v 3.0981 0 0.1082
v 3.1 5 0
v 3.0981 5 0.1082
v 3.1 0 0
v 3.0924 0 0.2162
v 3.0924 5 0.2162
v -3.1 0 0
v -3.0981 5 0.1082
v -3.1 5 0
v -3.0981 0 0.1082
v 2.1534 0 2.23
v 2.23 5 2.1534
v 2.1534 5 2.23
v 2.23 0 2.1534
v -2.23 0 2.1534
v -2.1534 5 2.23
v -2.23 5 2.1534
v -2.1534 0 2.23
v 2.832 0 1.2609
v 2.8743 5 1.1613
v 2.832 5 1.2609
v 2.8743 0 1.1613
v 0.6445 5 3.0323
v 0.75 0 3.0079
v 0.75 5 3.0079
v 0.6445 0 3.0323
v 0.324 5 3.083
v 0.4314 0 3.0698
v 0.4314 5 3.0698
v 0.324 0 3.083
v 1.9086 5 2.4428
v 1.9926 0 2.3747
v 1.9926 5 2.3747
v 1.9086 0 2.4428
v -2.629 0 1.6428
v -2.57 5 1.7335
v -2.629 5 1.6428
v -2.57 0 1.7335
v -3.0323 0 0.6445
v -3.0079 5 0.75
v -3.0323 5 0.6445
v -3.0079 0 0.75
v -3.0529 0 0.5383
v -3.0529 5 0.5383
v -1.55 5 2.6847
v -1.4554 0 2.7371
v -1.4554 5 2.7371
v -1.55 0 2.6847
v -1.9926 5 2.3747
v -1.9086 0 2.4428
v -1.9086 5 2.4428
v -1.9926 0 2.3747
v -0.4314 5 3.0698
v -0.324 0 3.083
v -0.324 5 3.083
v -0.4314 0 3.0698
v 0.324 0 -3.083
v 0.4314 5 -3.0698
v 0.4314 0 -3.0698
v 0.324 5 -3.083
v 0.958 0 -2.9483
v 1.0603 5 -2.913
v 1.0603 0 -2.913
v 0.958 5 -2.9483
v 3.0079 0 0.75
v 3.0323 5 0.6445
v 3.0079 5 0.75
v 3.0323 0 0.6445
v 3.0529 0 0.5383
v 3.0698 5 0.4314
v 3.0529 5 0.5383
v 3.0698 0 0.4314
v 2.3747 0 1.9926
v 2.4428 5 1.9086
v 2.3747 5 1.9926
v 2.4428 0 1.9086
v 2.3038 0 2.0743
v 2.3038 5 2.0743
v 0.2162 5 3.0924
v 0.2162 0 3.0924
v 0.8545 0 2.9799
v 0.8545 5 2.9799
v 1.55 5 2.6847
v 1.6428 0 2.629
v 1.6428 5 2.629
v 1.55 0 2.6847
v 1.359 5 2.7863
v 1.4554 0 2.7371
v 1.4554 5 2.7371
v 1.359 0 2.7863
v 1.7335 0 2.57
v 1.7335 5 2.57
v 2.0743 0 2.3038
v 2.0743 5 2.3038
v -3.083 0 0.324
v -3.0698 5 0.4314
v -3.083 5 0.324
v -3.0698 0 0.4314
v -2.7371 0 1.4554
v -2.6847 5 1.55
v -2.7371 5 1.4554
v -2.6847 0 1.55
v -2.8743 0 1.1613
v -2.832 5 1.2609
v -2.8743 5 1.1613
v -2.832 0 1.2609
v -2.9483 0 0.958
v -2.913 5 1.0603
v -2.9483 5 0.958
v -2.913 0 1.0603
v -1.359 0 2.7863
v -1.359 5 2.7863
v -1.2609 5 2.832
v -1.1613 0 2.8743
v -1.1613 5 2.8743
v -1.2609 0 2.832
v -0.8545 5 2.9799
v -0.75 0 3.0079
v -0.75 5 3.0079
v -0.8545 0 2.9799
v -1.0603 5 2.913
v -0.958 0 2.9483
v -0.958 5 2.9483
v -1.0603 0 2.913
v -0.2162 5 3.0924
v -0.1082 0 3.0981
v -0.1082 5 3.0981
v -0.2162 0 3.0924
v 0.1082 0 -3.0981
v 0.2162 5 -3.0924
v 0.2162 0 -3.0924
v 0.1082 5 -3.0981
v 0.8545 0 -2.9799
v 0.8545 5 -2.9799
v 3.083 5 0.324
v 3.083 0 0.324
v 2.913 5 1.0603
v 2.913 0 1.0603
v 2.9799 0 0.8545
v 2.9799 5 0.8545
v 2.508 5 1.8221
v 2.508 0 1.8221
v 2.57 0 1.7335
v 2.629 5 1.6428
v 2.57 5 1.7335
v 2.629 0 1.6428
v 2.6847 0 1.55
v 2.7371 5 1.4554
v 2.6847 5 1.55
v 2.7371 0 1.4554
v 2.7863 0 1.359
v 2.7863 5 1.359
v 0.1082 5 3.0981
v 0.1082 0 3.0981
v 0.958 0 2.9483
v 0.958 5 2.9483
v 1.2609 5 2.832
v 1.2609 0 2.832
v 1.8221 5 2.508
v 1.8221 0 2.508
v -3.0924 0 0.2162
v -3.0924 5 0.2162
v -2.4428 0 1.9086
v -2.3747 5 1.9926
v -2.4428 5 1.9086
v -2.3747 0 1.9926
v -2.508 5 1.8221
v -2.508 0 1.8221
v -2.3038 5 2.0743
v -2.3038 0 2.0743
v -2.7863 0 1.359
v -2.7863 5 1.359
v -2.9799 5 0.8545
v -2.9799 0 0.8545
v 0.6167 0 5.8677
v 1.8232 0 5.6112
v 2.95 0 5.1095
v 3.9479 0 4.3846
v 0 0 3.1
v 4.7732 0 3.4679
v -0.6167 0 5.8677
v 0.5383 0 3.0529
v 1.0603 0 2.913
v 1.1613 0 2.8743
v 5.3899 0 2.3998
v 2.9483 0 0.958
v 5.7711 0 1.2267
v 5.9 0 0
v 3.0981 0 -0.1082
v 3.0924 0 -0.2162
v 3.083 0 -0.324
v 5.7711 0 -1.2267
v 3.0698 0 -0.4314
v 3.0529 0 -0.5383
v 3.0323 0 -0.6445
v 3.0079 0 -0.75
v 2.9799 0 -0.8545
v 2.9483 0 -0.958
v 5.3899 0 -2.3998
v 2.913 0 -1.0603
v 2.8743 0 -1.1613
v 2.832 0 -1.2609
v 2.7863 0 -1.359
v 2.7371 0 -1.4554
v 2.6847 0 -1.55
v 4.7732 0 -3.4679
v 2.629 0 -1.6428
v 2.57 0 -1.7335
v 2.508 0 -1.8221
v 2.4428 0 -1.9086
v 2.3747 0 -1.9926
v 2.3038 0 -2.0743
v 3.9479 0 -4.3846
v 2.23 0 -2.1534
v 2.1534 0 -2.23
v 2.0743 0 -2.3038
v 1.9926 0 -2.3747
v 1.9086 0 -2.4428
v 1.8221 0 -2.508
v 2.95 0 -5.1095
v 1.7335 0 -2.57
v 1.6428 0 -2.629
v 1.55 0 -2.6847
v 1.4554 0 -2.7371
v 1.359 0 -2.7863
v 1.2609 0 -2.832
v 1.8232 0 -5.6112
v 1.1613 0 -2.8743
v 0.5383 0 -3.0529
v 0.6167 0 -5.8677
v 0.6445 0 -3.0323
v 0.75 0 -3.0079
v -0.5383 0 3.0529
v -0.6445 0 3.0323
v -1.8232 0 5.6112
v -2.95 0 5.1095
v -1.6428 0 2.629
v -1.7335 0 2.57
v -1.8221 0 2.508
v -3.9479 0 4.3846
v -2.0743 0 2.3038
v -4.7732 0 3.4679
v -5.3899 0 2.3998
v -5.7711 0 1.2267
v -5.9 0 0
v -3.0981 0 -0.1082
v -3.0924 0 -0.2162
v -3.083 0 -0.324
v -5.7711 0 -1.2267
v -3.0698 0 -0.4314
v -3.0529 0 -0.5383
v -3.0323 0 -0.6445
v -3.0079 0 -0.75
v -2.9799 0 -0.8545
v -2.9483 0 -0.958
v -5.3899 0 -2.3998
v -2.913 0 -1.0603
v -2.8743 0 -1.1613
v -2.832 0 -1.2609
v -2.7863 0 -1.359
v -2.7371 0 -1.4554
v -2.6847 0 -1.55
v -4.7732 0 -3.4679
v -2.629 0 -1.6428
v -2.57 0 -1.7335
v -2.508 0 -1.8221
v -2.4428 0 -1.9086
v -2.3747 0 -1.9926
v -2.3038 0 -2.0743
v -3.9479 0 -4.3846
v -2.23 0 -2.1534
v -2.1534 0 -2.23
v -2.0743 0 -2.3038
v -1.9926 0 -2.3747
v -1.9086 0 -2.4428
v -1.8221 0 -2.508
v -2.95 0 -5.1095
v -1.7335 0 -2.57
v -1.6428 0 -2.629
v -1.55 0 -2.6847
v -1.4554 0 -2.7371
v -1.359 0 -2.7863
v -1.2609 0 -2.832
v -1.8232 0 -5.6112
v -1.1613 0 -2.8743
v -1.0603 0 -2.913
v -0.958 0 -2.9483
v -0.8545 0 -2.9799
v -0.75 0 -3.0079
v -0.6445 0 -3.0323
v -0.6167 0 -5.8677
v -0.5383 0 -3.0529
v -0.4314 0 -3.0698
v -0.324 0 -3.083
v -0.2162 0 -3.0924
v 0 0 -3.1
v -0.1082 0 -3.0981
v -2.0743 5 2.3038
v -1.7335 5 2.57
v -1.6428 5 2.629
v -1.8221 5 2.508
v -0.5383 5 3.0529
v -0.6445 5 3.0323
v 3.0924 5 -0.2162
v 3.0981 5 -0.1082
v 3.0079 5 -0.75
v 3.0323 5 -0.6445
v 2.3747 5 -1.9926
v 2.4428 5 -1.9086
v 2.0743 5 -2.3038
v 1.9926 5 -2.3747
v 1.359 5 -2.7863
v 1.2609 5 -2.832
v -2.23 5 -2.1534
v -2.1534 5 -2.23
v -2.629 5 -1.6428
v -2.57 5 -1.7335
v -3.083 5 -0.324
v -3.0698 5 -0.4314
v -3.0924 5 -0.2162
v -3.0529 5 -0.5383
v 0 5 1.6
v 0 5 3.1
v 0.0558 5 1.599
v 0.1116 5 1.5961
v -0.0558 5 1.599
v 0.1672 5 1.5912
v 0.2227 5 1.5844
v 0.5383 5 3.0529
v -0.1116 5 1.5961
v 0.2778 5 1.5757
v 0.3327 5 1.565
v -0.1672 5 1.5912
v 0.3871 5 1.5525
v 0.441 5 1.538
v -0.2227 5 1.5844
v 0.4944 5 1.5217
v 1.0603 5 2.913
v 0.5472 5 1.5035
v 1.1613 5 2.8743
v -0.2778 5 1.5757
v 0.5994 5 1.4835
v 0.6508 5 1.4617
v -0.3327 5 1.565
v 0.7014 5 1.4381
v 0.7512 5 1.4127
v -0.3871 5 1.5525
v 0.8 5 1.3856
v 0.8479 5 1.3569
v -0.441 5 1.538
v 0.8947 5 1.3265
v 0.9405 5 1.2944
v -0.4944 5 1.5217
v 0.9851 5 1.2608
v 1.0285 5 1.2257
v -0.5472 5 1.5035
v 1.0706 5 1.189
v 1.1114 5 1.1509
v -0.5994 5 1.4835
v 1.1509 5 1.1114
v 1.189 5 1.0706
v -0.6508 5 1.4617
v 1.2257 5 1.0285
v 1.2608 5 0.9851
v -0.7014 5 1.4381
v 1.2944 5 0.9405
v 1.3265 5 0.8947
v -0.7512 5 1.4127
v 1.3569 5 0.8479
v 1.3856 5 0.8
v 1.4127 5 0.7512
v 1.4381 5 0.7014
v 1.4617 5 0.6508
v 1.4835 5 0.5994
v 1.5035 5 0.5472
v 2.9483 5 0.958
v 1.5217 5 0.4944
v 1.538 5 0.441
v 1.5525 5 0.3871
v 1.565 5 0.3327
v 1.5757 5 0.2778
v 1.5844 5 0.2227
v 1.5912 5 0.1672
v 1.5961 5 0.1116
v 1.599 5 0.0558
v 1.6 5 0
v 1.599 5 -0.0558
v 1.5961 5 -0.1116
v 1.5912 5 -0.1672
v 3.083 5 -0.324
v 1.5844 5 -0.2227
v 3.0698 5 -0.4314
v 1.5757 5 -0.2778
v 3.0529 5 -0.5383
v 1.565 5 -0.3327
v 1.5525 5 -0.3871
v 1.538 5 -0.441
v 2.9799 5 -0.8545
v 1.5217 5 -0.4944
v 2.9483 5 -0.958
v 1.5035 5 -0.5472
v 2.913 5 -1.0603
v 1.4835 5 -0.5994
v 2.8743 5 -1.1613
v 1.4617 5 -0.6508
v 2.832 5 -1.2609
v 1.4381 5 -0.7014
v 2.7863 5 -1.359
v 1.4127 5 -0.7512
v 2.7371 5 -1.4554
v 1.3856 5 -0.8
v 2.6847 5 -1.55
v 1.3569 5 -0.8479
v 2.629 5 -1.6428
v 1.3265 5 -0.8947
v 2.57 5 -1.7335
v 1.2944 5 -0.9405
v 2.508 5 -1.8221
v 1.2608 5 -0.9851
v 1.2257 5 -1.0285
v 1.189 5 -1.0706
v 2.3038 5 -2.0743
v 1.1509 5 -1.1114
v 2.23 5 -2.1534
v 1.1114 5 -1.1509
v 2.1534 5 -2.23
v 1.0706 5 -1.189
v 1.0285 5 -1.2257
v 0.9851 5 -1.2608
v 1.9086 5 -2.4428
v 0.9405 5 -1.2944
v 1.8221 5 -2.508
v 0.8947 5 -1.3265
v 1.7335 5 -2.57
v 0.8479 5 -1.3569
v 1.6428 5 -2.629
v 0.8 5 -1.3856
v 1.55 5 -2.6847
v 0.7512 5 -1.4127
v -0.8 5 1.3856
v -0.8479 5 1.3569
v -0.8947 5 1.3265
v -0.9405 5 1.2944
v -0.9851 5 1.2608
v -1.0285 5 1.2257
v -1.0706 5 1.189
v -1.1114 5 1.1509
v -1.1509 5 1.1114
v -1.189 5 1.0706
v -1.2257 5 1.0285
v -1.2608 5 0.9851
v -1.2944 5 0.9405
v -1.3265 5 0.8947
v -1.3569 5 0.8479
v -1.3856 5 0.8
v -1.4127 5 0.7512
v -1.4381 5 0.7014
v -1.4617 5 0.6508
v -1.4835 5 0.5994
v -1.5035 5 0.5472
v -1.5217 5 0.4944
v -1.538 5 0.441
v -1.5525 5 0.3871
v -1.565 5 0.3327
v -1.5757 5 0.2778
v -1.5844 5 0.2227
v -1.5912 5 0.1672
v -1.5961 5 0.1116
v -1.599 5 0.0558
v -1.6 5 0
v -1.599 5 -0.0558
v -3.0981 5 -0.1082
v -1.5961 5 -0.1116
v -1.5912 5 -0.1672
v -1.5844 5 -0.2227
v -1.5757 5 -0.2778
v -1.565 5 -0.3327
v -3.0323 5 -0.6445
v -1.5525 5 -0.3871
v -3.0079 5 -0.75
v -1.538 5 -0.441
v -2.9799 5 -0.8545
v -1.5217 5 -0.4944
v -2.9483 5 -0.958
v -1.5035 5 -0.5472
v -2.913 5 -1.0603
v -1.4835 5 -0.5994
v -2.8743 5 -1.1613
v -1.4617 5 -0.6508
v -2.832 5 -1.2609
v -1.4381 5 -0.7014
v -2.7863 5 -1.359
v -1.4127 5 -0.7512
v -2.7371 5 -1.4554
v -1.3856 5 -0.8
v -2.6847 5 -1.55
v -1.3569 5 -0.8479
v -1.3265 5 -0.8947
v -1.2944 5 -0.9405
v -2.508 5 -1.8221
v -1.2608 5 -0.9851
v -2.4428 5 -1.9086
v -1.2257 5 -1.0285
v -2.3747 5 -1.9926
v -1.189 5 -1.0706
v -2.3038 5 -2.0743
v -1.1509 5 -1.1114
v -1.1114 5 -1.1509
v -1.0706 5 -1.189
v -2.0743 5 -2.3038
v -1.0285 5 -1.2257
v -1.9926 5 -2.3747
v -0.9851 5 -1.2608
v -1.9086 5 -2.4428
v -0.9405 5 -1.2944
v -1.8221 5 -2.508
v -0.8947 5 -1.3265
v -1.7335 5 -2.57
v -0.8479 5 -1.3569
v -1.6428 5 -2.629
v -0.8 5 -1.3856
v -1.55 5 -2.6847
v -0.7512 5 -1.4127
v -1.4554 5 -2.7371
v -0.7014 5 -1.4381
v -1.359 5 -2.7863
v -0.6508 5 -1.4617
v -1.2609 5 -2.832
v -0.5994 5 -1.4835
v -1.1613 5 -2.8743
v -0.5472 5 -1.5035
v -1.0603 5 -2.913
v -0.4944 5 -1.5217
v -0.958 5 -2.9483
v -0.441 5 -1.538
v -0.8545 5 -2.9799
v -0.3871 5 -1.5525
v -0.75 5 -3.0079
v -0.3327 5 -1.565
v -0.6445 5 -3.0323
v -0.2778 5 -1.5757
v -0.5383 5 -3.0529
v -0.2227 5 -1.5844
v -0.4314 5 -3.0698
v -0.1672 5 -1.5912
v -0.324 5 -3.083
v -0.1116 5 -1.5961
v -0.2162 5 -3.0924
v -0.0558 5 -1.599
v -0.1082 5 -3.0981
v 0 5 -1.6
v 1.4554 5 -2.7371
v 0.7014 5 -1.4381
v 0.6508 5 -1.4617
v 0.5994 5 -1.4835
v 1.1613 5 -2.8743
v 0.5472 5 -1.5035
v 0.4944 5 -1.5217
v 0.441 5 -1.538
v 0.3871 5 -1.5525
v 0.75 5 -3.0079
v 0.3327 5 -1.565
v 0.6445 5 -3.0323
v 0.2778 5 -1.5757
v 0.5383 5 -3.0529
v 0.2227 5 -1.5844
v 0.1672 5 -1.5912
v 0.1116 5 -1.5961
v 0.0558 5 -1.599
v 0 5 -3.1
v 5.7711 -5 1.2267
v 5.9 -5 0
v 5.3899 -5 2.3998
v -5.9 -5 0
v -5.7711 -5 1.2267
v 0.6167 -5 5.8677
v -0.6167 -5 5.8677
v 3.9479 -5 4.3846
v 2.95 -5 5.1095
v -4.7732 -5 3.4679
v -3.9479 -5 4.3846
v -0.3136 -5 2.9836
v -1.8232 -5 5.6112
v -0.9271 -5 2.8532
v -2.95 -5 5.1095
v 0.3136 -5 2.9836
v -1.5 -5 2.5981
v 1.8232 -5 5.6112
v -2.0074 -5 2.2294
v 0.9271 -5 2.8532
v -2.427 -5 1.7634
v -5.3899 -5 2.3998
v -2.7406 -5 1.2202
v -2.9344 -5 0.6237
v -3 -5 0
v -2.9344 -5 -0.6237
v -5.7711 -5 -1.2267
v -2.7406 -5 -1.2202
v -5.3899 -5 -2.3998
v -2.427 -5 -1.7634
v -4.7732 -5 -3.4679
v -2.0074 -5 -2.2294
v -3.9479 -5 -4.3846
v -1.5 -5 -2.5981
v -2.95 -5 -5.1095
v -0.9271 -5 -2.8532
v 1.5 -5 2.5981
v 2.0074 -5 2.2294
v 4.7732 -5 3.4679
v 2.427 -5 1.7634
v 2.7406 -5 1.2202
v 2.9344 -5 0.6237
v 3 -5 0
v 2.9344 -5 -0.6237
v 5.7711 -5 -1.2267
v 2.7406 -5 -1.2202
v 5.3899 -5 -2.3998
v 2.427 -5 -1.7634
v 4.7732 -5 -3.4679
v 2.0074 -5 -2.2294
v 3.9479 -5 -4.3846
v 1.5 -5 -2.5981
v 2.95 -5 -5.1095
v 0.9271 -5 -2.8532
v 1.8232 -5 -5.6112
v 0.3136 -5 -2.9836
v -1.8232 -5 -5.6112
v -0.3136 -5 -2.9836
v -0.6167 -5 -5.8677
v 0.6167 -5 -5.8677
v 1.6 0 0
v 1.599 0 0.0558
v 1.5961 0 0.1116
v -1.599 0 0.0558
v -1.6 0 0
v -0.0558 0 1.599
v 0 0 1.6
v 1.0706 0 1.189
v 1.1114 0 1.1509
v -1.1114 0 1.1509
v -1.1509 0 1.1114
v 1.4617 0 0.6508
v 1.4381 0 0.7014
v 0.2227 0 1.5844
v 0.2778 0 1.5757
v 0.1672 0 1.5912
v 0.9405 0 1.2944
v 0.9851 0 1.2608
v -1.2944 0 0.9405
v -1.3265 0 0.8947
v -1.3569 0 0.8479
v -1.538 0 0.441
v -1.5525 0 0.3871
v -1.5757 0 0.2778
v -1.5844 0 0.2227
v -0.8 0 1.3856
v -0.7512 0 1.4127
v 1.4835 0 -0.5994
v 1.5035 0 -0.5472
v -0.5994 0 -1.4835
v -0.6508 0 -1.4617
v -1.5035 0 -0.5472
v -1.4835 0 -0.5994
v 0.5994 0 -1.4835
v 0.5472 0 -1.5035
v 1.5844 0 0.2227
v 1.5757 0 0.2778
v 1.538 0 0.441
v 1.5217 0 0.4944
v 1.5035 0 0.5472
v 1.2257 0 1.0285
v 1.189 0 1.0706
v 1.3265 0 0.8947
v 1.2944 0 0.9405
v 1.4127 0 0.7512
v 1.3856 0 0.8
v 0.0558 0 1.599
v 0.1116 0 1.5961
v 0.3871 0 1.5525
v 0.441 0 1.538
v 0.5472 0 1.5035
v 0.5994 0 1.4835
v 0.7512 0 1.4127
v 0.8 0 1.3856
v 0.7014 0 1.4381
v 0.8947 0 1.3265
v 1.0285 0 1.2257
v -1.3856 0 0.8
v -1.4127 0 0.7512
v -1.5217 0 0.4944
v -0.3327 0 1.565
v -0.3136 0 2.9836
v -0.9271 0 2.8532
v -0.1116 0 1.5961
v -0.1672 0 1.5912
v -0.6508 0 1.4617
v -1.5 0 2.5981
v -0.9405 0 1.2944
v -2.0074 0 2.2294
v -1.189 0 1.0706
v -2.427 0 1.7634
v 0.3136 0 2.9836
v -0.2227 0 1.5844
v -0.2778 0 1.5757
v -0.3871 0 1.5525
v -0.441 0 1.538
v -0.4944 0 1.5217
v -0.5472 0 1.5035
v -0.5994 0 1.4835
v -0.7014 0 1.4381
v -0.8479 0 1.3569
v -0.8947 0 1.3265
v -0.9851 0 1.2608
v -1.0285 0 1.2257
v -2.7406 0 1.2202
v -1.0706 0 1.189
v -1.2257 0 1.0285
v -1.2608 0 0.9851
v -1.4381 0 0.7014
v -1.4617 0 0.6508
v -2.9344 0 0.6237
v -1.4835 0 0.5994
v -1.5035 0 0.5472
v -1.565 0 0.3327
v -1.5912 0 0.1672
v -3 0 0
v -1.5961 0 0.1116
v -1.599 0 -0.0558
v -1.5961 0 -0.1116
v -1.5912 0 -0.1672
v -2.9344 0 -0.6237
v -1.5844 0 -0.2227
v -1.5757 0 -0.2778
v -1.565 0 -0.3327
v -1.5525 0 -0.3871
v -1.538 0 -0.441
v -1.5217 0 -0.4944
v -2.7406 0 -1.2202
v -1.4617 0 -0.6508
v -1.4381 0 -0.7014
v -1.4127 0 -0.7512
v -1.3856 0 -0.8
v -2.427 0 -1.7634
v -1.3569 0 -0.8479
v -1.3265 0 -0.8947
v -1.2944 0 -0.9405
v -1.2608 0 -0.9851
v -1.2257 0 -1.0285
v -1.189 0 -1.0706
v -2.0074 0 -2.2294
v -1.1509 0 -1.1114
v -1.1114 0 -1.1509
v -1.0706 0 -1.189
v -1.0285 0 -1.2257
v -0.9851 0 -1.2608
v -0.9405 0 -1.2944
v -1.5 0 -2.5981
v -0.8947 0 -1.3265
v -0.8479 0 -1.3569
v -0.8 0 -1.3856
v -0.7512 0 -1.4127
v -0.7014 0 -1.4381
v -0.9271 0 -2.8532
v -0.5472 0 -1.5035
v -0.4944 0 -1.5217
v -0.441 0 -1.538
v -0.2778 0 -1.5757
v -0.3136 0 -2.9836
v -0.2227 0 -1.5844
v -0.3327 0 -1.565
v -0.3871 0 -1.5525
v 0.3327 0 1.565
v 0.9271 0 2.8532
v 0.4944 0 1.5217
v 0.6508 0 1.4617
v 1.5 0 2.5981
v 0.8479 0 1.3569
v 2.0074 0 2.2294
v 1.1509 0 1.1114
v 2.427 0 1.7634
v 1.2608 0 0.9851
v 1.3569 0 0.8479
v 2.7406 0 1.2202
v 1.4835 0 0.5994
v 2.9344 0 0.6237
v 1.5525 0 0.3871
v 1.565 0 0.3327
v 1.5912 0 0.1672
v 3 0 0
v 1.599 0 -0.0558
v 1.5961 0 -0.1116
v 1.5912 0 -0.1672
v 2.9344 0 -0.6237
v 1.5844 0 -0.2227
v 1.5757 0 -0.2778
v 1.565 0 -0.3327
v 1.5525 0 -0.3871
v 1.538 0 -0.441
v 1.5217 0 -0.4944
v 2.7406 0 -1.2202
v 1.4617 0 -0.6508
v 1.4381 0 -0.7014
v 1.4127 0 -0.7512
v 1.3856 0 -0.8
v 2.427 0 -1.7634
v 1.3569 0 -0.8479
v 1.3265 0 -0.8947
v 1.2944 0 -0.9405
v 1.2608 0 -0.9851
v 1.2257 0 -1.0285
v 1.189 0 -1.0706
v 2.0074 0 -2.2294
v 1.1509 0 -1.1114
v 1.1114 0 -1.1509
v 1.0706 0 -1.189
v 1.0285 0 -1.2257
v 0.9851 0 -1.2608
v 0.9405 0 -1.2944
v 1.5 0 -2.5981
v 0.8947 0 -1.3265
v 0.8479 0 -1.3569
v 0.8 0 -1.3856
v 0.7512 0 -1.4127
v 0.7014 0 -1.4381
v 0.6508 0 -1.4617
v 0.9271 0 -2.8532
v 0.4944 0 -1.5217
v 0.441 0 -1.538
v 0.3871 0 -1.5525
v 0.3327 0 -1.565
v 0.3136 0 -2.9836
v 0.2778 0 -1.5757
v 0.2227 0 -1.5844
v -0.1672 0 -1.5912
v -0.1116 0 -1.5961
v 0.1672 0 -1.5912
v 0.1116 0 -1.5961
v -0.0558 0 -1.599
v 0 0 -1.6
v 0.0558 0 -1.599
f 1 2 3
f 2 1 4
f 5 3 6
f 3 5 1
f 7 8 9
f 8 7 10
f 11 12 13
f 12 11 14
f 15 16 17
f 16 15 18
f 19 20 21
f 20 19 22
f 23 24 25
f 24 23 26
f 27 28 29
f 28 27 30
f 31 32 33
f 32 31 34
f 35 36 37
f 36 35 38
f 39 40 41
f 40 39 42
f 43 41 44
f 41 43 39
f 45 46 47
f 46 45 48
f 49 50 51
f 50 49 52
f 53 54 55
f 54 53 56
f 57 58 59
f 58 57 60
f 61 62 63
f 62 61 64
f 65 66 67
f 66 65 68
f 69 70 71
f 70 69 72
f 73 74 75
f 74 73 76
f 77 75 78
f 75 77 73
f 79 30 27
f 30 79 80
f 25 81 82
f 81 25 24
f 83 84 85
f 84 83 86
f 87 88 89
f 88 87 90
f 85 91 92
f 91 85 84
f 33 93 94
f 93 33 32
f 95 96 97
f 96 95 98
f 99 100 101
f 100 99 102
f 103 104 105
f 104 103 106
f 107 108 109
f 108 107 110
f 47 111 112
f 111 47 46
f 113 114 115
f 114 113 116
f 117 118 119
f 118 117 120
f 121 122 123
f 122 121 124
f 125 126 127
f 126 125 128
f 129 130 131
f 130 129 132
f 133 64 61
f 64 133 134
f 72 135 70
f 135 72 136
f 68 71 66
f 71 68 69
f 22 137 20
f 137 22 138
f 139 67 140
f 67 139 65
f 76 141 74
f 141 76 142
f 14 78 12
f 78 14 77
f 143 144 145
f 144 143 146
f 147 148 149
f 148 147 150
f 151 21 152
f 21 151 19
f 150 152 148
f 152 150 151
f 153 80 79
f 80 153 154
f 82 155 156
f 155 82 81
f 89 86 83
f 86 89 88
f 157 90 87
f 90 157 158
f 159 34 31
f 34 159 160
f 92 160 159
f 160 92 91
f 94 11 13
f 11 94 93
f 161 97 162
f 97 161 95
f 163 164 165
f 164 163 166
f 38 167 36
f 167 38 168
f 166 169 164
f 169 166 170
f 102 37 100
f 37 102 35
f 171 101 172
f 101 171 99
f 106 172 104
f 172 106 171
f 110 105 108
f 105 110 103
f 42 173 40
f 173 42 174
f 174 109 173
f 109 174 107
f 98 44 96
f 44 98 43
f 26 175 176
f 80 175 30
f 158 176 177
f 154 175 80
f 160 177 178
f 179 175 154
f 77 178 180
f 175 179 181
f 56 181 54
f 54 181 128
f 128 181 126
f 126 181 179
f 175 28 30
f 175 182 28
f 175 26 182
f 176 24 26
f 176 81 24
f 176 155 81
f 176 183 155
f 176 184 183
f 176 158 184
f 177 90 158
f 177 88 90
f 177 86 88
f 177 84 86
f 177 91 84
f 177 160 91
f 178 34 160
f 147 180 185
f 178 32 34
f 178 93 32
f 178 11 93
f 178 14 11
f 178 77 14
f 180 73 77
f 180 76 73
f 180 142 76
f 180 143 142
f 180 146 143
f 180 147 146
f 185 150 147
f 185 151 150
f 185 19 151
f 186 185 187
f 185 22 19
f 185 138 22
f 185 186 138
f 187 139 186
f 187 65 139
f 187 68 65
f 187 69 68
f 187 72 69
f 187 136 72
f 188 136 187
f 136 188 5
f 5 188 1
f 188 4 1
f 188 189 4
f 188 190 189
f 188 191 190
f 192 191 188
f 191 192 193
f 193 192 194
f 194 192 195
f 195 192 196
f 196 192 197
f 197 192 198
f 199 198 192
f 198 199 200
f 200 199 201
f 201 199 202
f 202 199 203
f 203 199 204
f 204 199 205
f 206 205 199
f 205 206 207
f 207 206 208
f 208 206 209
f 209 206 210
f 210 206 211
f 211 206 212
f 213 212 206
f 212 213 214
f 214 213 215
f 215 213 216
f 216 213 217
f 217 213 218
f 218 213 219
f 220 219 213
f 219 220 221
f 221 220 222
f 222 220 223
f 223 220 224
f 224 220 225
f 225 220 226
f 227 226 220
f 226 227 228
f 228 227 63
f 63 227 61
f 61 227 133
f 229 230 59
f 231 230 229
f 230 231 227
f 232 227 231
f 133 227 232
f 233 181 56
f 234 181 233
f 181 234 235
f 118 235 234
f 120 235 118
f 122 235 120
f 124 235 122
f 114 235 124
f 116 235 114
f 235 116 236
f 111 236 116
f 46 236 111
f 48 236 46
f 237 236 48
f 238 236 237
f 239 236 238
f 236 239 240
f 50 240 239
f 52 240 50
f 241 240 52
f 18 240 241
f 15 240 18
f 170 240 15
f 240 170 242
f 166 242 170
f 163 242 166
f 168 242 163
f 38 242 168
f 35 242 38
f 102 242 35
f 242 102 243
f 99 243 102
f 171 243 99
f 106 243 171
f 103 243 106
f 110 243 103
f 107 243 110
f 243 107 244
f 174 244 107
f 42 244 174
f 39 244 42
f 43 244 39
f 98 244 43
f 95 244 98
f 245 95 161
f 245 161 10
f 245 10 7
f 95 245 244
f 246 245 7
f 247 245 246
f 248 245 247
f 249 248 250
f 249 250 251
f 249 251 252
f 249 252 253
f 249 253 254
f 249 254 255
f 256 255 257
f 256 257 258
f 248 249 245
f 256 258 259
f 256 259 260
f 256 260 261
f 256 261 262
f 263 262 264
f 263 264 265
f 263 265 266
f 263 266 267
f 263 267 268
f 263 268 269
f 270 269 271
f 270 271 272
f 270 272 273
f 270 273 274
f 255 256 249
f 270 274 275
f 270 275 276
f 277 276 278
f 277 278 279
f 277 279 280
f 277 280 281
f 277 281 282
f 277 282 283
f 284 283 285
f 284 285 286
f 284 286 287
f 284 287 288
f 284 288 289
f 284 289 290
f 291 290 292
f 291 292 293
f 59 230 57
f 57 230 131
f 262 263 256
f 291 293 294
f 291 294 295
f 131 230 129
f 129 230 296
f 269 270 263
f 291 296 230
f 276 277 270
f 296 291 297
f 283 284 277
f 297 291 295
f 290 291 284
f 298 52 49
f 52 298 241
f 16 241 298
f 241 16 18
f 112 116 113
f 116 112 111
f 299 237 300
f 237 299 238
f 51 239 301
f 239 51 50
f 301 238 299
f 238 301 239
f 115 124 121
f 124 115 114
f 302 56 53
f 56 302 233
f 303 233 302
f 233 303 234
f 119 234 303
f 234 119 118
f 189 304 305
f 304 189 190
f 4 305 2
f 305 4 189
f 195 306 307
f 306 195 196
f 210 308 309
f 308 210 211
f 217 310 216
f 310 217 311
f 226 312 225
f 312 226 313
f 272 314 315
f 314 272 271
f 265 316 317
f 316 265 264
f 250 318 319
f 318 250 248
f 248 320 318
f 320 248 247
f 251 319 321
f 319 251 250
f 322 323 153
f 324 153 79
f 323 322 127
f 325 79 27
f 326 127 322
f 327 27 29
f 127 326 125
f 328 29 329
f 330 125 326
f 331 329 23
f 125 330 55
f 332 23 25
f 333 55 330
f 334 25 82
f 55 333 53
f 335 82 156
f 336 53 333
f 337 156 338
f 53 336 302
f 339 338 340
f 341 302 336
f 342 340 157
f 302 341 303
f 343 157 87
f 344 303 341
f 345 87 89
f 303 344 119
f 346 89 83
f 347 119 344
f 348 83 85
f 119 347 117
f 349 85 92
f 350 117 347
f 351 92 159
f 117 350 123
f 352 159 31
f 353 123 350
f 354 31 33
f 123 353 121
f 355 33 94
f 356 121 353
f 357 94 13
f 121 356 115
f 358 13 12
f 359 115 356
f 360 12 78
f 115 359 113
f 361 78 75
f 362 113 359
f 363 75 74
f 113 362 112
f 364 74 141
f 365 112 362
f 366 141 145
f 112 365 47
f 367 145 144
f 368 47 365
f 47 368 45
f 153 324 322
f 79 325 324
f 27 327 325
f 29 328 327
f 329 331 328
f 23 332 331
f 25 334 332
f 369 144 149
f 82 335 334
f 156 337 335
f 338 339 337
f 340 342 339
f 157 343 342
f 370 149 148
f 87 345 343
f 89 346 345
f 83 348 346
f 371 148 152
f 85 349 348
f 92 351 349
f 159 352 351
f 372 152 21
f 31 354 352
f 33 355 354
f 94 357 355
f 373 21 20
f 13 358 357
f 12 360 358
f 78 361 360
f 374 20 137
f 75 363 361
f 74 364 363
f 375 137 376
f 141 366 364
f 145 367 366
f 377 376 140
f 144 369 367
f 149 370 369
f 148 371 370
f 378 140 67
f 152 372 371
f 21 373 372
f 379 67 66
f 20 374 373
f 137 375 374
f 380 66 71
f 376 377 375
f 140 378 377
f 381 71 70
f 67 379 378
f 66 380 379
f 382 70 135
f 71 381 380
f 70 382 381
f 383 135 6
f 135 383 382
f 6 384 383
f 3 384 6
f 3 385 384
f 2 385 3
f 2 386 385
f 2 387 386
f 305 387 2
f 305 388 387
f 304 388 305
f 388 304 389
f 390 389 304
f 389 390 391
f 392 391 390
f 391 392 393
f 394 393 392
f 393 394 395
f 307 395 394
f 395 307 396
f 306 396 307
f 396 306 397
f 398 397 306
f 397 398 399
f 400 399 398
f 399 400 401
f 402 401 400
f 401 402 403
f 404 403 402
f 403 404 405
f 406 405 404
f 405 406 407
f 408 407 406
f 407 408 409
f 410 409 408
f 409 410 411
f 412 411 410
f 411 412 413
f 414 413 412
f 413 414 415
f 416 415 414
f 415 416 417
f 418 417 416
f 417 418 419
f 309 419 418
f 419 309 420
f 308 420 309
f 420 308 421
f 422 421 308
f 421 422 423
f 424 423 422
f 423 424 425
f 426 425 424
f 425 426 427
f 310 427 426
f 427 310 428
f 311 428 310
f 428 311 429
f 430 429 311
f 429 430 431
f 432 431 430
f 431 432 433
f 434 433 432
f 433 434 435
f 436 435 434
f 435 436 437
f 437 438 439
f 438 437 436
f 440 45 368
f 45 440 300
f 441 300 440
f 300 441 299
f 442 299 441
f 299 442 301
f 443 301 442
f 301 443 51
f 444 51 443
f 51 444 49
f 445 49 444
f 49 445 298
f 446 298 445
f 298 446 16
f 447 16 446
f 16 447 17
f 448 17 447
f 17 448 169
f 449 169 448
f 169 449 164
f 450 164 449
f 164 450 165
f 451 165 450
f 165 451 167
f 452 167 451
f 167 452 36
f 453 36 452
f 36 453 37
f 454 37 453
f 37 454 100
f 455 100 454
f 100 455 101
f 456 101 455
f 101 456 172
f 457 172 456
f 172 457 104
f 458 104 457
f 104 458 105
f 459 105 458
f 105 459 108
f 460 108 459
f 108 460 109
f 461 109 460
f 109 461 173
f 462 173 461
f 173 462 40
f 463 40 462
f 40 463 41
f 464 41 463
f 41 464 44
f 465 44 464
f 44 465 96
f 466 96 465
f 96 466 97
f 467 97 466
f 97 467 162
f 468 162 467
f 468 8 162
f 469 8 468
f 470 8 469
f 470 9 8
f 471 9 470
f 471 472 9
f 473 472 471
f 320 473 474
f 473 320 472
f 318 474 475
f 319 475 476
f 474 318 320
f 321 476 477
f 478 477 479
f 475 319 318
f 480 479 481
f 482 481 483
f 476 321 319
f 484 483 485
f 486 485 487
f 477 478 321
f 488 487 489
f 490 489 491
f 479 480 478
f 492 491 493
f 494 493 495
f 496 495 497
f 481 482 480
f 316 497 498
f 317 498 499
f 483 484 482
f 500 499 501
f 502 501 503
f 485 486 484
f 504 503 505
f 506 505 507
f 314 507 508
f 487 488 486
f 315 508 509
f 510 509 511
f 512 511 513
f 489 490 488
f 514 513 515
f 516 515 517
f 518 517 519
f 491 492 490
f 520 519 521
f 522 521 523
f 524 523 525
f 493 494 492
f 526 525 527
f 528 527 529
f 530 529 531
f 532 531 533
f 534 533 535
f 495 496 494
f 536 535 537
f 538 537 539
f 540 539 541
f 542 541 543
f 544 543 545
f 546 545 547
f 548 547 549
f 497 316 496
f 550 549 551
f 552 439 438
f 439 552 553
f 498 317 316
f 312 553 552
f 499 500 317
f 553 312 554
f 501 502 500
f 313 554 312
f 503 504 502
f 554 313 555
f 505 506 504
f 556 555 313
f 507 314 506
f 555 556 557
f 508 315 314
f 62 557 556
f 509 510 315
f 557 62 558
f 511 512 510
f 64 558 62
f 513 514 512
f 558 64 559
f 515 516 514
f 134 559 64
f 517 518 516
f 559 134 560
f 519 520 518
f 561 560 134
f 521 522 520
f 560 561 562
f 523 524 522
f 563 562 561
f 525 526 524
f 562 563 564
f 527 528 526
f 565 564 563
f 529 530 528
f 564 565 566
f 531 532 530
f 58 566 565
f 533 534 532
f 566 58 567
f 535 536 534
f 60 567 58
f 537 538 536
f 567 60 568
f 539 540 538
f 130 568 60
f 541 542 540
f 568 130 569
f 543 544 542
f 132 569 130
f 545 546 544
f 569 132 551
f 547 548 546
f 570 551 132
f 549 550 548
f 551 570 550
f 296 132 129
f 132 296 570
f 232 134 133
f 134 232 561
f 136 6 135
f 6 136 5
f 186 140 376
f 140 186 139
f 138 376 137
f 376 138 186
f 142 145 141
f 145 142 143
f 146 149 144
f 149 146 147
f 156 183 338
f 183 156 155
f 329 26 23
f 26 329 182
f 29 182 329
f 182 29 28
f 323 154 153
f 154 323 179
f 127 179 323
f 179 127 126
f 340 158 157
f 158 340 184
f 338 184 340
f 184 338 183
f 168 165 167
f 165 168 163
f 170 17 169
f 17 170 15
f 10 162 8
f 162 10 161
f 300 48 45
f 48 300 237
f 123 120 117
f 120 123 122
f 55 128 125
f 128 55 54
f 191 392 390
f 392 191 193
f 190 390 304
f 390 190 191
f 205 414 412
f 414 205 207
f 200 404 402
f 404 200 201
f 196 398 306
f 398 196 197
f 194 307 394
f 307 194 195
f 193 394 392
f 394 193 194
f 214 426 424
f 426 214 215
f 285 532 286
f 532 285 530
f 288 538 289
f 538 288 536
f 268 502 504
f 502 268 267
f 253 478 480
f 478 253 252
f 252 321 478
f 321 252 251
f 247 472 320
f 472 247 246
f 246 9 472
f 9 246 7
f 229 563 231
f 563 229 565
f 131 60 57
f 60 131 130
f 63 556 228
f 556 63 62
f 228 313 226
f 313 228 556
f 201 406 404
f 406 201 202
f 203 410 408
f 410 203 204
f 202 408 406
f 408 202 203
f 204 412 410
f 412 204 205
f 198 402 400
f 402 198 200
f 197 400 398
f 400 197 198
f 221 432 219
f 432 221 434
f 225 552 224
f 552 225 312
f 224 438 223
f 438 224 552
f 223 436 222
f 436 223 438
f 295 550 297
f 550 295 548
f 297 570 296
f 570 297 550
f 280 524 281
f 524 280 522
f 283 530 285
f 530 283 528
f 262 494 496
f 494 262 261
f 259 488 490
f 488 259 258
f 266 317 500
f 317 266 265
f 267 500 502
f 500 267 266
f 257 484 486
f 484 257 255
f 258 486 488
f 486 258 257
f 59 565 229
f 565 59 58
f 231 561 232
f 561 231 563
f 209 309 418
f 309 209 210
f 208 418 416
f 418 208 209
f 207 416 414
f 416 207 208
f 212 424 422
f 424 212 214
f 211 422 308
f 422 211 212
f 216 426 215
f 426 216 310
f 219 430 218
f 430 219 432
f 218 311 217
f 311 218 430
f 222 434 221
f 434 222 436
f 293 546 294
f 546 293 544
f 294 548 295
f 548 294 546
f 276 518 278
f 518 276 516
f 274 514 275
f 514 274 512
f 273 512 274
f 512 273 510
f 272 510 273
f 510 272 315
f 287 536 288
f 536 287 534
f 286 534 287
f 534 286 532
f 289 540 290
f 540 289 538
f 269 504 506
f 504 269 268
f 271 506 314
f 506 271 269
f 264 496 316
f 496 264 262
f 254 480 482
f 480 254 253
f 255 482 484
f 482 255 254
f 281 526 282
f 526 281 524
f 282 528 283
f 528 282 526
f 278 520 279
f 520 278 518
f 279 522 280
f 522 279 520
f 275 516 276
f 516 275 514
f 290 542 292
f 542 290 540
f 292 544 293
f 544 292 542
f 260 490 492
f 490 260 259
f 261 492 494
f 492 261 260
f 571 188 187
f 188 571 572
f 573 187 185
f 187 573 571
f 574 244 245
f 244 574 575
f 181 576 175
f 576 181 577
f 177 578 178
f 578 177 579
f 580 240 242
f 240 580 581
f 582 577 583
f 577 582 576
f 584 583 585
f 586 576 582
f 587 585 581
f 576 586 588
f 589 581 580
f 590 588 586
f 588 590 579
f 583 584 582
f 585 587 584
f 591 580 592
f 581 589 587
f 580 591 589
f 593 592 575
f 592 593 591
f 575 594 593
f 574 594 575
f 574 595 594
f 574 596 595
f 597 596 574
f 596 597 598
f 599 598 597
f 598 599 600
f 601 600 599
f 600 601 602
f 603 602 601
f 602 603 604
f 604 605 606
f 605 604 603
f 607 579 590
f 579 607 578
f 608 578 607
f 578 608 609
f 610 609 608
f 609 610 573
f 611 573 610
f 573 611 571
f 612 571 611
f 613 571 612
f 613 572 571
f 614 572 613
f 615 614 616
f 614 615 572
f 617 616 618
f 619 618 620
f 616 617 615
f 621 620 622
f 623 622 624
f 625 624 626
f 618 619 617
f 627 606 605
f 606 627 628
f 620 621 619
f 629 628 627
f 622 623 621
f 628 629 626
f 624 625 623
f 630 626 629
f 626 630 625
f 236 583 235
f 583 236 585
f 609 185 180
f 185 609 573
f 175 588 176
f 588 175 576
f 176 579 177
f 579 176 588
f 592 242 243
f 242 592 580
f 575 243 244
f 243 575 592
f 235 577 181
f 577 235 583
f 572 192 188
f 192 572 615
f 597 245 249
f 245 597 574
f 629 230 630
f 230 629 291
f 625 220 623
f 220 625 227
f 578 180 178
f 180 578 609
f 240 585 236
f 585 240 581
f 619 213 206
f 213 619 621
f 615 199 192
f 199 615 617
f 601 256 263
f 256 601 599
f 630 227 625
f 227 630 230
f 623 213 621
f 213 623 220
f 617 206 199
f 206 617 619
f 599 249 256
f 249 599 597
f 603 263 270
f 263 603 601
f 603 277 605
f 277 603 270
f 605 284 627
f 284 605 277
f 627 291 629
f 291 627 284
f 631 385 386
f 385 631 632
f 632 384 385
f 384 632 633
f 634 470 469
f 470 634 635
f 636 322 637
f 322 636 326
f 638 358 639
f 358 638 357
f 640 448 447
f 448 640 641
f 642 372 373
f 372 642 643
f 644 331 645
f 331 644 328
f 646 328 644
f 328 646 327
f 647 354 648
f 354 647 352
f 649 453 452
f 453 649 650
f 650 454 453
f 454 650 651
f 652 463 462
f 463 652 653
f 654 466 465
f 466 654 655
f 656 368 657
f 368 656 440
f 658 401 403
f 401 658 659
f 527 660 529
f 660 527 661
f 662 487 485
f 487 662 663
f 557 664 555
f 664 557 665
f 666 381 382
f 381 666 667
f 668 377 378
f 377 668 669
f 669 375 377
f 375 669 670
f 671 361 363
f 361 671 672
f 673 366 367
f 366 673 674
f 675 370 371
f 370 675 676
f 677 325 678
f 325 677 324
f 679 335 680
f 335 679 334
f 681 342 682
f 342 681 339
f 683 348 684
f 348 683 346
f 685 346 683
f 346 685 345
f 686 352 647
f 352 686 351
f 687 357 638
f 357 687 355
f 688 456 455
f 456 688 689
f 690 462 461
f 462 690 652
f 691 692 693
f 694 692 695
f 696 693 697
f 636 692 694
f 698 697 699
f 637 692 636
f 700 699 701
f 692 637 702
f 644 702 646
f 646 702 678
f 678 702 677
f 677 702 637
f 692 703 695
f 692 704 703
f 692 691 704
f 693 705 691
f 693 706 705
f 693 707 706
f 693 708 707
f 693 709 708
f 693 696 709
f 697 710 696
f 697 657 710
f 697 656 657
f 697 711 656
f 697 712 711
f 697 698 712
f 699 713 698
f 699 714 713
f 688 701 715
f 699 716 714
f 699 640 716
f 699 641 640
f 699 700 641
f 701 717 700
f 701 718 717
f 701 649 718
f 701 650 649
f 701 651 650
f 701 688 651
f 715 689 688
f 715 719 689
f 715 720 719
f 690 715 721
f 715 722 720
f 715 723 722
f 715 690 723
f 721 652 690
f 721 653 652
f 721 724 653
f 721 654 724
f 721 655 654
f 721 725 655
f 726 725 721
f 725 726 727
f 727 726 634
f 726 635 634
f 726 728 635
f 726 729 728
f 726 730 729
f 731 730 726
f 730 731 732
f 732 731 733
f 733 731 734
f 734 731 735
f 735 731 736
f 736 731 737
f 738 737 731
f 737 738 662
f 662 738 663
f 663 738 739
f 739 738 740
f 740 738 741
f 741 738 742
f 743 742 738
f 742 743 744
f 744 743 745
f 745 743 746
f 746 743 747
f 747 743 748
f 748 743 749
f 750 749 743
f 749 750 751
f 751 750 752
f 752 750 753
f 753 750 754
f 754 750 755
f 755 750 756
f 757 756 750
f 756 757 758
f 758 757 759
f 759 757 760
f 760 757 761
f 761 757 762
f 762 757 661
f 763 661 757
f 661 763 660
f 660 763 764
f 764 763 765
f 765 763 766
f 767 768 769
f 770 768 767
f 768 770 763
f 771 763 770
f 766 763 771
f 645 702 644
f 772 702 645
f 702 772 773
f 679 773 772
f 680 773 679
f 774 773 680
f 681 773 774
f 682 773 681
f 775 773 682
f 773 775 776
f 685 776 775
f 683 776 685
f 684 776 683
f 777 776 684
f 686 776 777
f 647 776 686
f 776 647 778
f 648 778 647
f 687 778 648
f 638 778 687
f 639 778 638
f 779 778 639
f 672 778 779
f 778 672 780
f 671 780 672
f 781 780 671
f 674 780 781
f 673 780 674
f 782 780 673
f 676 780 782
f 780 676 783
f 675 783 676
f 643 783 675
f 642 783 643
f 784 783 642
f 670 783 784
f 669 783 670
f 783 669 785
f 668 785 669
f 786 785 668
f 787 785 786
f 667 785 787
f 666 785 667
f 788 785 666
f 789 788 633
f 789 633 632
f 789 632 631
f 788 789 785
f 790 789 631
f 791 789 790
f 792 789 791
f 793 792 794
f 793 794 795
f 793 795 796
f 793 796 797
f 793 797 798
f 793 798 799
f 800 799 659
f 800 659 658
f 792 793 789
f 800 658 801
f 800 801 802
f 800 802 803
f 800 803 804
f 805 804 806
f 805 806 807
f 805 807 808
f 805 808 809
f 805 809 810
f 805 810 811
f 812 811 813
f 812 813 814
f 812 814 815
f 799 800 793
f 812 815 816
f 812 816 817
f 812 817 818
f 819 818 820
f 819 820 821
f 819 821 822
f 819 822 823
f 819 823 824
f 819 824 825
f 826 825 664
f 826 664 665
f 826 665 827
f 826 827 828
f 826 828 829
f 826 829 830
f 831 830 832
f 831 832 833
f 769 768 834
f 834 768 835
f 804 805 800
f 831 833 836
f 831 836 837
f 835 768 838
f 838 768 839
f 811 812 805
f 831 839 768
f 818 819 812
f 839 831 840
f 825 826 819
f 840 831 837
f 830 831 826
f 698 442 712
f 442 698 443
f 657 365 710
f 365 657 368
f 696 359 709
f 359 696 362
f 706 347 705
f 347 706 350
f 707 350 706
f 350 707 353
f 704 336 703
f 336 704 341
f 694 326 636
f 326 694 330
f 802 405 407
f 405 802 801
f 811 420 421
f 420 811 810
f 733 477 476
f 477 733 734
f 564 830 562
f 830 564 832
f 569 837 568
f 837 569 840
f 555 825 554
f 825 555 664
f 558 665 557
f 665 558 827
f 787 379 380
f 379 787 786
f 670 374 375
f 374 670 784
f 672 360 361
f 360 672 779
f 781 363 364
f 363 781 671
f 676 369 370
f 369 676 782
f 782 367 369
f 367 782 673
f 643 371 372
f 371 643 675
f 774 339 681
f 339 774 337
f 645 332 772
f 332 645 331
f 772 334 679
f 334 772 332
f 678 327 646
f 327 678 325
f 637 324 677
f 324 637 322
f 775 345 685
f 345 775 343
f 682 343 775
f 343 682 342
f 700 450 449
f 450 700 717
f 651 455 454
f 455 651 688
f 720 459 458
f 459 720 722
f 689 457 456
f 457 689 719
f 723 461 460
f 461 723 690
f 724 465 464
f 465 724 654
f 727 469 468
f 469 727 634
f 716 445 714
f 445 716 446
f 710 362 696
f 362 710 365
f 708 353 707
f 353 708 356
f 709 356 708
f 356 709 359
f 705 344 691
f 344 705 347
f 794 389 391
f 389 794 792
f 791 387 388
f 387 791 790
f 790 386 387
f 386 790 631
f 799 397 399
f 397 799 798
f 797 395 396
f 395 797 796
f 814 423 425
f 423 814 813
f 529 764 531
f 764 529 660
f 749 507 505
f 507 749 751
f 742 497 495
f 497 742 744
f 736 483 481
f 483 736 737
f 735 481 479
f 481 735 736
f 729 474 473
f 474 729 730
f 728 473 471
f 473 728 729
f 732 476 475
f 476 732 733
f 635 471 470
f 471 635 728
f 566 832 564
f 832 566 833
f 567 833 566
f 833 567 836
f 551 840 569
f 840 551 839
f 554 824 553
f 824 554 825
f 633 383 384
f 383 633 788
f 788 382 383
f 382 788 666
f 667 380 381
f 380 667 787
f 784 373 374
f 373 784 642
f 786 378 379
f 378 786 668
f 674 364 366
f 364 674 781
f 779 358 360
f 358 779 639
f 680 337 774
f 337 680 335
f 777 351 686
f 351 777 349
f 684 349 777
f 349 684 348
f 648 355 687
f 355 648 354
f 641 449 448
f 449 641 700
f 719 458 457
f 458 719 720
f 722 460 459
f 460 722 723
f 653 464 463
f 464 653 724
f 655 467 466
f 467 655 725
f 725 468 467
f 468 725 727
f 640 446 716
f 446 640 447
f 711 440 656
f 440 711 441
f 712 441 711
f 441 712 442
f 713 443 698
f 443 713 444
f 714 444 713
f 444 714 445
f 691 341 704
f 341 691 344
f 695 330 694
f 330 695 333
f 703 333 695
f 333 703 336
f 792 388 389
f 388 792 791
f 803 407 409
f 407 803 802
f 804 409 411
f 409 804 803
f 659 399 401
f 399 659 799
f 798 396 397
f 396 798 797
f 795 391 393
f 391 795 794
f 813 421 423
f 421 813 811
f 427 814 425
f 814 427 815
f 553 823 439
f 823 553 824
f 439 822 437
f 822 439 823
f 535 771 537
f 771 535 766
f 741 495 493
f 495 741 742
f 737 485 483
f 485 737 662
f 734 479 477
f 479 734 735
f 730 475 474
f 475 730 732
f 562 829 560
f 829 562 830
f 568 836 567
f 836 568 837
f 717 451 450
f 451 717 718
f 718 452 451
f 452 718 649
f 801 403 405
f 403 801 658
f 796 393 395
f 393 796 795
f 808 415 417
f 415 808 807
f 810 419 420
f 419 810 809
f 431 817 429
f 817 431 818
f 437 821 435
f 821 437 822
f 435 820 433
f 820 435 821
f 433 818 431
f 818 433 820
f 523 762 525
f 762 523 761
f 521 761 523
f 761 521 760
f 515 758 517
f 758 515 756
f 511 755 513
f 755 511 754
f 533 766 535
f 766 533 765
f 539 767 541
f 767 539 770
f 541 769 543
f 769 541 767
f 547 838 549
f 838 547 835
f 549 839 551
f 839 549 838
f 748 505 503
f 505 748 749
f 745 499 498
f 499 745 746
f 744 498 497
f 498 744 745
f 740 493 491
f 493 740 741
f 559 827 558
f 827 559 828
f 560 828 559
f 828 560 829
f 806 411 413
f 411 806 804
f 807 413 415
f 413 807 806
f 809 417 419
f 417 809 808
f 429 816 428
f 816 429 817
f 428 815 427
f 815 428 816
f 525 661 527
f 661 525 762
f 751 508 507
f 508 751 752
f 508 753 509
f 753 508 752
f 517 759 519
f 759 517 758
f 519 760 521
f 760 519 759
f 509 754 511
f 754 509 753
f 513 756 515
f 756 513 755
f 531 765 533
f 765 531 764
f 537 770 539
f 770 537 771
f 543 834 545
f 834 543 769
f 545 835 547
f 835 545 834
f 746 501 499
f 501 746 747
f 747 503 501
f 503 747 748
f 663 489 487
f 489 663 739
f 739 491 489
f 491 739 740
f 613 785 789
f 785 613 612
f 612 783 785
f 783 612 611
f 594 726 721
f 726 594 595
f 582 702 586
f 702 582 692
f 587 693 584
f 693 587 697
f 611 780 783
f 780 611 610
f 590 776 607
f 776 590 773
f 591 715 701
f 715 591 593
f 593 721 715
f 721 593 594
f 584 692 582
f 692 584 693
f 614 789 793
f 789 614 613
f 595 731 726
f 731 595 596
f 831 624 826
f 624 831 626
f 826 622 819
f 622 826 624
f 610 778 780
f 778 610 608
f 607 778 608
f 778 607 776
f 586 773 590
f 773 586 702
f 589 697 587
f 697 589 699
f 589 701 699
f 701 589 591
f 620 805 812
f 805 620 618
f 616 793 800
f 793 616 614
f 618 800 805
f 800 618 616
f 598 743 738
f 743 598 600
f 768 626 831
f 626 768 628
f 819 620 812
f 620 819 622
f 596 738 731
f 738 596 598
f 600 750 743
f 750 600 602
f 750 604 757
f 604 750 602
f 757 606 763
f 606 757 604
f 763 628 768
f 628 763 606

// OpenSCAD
difference(){
union(){
translate([0,2.5,0]) rotate([90,0,0]) cylinder(h = 5, r=3.1, $fn = 180, center = true);

//hexagon
translate([0,-2.5,0]) rotate([90,0,0]) cylinder(h = 5, r=5.9, $fn = 30, center = true);
}



translate([0,2.5,0]) rotate([90,0,0]) cylinder(h = 5, d=3.2, $fn = 180, center = true);

//hexagon
translate([0,-2.5,0]) rotate([90,0,0]) cylinder(h = 5, d=6, $fn = 30, center = true);







}
    
